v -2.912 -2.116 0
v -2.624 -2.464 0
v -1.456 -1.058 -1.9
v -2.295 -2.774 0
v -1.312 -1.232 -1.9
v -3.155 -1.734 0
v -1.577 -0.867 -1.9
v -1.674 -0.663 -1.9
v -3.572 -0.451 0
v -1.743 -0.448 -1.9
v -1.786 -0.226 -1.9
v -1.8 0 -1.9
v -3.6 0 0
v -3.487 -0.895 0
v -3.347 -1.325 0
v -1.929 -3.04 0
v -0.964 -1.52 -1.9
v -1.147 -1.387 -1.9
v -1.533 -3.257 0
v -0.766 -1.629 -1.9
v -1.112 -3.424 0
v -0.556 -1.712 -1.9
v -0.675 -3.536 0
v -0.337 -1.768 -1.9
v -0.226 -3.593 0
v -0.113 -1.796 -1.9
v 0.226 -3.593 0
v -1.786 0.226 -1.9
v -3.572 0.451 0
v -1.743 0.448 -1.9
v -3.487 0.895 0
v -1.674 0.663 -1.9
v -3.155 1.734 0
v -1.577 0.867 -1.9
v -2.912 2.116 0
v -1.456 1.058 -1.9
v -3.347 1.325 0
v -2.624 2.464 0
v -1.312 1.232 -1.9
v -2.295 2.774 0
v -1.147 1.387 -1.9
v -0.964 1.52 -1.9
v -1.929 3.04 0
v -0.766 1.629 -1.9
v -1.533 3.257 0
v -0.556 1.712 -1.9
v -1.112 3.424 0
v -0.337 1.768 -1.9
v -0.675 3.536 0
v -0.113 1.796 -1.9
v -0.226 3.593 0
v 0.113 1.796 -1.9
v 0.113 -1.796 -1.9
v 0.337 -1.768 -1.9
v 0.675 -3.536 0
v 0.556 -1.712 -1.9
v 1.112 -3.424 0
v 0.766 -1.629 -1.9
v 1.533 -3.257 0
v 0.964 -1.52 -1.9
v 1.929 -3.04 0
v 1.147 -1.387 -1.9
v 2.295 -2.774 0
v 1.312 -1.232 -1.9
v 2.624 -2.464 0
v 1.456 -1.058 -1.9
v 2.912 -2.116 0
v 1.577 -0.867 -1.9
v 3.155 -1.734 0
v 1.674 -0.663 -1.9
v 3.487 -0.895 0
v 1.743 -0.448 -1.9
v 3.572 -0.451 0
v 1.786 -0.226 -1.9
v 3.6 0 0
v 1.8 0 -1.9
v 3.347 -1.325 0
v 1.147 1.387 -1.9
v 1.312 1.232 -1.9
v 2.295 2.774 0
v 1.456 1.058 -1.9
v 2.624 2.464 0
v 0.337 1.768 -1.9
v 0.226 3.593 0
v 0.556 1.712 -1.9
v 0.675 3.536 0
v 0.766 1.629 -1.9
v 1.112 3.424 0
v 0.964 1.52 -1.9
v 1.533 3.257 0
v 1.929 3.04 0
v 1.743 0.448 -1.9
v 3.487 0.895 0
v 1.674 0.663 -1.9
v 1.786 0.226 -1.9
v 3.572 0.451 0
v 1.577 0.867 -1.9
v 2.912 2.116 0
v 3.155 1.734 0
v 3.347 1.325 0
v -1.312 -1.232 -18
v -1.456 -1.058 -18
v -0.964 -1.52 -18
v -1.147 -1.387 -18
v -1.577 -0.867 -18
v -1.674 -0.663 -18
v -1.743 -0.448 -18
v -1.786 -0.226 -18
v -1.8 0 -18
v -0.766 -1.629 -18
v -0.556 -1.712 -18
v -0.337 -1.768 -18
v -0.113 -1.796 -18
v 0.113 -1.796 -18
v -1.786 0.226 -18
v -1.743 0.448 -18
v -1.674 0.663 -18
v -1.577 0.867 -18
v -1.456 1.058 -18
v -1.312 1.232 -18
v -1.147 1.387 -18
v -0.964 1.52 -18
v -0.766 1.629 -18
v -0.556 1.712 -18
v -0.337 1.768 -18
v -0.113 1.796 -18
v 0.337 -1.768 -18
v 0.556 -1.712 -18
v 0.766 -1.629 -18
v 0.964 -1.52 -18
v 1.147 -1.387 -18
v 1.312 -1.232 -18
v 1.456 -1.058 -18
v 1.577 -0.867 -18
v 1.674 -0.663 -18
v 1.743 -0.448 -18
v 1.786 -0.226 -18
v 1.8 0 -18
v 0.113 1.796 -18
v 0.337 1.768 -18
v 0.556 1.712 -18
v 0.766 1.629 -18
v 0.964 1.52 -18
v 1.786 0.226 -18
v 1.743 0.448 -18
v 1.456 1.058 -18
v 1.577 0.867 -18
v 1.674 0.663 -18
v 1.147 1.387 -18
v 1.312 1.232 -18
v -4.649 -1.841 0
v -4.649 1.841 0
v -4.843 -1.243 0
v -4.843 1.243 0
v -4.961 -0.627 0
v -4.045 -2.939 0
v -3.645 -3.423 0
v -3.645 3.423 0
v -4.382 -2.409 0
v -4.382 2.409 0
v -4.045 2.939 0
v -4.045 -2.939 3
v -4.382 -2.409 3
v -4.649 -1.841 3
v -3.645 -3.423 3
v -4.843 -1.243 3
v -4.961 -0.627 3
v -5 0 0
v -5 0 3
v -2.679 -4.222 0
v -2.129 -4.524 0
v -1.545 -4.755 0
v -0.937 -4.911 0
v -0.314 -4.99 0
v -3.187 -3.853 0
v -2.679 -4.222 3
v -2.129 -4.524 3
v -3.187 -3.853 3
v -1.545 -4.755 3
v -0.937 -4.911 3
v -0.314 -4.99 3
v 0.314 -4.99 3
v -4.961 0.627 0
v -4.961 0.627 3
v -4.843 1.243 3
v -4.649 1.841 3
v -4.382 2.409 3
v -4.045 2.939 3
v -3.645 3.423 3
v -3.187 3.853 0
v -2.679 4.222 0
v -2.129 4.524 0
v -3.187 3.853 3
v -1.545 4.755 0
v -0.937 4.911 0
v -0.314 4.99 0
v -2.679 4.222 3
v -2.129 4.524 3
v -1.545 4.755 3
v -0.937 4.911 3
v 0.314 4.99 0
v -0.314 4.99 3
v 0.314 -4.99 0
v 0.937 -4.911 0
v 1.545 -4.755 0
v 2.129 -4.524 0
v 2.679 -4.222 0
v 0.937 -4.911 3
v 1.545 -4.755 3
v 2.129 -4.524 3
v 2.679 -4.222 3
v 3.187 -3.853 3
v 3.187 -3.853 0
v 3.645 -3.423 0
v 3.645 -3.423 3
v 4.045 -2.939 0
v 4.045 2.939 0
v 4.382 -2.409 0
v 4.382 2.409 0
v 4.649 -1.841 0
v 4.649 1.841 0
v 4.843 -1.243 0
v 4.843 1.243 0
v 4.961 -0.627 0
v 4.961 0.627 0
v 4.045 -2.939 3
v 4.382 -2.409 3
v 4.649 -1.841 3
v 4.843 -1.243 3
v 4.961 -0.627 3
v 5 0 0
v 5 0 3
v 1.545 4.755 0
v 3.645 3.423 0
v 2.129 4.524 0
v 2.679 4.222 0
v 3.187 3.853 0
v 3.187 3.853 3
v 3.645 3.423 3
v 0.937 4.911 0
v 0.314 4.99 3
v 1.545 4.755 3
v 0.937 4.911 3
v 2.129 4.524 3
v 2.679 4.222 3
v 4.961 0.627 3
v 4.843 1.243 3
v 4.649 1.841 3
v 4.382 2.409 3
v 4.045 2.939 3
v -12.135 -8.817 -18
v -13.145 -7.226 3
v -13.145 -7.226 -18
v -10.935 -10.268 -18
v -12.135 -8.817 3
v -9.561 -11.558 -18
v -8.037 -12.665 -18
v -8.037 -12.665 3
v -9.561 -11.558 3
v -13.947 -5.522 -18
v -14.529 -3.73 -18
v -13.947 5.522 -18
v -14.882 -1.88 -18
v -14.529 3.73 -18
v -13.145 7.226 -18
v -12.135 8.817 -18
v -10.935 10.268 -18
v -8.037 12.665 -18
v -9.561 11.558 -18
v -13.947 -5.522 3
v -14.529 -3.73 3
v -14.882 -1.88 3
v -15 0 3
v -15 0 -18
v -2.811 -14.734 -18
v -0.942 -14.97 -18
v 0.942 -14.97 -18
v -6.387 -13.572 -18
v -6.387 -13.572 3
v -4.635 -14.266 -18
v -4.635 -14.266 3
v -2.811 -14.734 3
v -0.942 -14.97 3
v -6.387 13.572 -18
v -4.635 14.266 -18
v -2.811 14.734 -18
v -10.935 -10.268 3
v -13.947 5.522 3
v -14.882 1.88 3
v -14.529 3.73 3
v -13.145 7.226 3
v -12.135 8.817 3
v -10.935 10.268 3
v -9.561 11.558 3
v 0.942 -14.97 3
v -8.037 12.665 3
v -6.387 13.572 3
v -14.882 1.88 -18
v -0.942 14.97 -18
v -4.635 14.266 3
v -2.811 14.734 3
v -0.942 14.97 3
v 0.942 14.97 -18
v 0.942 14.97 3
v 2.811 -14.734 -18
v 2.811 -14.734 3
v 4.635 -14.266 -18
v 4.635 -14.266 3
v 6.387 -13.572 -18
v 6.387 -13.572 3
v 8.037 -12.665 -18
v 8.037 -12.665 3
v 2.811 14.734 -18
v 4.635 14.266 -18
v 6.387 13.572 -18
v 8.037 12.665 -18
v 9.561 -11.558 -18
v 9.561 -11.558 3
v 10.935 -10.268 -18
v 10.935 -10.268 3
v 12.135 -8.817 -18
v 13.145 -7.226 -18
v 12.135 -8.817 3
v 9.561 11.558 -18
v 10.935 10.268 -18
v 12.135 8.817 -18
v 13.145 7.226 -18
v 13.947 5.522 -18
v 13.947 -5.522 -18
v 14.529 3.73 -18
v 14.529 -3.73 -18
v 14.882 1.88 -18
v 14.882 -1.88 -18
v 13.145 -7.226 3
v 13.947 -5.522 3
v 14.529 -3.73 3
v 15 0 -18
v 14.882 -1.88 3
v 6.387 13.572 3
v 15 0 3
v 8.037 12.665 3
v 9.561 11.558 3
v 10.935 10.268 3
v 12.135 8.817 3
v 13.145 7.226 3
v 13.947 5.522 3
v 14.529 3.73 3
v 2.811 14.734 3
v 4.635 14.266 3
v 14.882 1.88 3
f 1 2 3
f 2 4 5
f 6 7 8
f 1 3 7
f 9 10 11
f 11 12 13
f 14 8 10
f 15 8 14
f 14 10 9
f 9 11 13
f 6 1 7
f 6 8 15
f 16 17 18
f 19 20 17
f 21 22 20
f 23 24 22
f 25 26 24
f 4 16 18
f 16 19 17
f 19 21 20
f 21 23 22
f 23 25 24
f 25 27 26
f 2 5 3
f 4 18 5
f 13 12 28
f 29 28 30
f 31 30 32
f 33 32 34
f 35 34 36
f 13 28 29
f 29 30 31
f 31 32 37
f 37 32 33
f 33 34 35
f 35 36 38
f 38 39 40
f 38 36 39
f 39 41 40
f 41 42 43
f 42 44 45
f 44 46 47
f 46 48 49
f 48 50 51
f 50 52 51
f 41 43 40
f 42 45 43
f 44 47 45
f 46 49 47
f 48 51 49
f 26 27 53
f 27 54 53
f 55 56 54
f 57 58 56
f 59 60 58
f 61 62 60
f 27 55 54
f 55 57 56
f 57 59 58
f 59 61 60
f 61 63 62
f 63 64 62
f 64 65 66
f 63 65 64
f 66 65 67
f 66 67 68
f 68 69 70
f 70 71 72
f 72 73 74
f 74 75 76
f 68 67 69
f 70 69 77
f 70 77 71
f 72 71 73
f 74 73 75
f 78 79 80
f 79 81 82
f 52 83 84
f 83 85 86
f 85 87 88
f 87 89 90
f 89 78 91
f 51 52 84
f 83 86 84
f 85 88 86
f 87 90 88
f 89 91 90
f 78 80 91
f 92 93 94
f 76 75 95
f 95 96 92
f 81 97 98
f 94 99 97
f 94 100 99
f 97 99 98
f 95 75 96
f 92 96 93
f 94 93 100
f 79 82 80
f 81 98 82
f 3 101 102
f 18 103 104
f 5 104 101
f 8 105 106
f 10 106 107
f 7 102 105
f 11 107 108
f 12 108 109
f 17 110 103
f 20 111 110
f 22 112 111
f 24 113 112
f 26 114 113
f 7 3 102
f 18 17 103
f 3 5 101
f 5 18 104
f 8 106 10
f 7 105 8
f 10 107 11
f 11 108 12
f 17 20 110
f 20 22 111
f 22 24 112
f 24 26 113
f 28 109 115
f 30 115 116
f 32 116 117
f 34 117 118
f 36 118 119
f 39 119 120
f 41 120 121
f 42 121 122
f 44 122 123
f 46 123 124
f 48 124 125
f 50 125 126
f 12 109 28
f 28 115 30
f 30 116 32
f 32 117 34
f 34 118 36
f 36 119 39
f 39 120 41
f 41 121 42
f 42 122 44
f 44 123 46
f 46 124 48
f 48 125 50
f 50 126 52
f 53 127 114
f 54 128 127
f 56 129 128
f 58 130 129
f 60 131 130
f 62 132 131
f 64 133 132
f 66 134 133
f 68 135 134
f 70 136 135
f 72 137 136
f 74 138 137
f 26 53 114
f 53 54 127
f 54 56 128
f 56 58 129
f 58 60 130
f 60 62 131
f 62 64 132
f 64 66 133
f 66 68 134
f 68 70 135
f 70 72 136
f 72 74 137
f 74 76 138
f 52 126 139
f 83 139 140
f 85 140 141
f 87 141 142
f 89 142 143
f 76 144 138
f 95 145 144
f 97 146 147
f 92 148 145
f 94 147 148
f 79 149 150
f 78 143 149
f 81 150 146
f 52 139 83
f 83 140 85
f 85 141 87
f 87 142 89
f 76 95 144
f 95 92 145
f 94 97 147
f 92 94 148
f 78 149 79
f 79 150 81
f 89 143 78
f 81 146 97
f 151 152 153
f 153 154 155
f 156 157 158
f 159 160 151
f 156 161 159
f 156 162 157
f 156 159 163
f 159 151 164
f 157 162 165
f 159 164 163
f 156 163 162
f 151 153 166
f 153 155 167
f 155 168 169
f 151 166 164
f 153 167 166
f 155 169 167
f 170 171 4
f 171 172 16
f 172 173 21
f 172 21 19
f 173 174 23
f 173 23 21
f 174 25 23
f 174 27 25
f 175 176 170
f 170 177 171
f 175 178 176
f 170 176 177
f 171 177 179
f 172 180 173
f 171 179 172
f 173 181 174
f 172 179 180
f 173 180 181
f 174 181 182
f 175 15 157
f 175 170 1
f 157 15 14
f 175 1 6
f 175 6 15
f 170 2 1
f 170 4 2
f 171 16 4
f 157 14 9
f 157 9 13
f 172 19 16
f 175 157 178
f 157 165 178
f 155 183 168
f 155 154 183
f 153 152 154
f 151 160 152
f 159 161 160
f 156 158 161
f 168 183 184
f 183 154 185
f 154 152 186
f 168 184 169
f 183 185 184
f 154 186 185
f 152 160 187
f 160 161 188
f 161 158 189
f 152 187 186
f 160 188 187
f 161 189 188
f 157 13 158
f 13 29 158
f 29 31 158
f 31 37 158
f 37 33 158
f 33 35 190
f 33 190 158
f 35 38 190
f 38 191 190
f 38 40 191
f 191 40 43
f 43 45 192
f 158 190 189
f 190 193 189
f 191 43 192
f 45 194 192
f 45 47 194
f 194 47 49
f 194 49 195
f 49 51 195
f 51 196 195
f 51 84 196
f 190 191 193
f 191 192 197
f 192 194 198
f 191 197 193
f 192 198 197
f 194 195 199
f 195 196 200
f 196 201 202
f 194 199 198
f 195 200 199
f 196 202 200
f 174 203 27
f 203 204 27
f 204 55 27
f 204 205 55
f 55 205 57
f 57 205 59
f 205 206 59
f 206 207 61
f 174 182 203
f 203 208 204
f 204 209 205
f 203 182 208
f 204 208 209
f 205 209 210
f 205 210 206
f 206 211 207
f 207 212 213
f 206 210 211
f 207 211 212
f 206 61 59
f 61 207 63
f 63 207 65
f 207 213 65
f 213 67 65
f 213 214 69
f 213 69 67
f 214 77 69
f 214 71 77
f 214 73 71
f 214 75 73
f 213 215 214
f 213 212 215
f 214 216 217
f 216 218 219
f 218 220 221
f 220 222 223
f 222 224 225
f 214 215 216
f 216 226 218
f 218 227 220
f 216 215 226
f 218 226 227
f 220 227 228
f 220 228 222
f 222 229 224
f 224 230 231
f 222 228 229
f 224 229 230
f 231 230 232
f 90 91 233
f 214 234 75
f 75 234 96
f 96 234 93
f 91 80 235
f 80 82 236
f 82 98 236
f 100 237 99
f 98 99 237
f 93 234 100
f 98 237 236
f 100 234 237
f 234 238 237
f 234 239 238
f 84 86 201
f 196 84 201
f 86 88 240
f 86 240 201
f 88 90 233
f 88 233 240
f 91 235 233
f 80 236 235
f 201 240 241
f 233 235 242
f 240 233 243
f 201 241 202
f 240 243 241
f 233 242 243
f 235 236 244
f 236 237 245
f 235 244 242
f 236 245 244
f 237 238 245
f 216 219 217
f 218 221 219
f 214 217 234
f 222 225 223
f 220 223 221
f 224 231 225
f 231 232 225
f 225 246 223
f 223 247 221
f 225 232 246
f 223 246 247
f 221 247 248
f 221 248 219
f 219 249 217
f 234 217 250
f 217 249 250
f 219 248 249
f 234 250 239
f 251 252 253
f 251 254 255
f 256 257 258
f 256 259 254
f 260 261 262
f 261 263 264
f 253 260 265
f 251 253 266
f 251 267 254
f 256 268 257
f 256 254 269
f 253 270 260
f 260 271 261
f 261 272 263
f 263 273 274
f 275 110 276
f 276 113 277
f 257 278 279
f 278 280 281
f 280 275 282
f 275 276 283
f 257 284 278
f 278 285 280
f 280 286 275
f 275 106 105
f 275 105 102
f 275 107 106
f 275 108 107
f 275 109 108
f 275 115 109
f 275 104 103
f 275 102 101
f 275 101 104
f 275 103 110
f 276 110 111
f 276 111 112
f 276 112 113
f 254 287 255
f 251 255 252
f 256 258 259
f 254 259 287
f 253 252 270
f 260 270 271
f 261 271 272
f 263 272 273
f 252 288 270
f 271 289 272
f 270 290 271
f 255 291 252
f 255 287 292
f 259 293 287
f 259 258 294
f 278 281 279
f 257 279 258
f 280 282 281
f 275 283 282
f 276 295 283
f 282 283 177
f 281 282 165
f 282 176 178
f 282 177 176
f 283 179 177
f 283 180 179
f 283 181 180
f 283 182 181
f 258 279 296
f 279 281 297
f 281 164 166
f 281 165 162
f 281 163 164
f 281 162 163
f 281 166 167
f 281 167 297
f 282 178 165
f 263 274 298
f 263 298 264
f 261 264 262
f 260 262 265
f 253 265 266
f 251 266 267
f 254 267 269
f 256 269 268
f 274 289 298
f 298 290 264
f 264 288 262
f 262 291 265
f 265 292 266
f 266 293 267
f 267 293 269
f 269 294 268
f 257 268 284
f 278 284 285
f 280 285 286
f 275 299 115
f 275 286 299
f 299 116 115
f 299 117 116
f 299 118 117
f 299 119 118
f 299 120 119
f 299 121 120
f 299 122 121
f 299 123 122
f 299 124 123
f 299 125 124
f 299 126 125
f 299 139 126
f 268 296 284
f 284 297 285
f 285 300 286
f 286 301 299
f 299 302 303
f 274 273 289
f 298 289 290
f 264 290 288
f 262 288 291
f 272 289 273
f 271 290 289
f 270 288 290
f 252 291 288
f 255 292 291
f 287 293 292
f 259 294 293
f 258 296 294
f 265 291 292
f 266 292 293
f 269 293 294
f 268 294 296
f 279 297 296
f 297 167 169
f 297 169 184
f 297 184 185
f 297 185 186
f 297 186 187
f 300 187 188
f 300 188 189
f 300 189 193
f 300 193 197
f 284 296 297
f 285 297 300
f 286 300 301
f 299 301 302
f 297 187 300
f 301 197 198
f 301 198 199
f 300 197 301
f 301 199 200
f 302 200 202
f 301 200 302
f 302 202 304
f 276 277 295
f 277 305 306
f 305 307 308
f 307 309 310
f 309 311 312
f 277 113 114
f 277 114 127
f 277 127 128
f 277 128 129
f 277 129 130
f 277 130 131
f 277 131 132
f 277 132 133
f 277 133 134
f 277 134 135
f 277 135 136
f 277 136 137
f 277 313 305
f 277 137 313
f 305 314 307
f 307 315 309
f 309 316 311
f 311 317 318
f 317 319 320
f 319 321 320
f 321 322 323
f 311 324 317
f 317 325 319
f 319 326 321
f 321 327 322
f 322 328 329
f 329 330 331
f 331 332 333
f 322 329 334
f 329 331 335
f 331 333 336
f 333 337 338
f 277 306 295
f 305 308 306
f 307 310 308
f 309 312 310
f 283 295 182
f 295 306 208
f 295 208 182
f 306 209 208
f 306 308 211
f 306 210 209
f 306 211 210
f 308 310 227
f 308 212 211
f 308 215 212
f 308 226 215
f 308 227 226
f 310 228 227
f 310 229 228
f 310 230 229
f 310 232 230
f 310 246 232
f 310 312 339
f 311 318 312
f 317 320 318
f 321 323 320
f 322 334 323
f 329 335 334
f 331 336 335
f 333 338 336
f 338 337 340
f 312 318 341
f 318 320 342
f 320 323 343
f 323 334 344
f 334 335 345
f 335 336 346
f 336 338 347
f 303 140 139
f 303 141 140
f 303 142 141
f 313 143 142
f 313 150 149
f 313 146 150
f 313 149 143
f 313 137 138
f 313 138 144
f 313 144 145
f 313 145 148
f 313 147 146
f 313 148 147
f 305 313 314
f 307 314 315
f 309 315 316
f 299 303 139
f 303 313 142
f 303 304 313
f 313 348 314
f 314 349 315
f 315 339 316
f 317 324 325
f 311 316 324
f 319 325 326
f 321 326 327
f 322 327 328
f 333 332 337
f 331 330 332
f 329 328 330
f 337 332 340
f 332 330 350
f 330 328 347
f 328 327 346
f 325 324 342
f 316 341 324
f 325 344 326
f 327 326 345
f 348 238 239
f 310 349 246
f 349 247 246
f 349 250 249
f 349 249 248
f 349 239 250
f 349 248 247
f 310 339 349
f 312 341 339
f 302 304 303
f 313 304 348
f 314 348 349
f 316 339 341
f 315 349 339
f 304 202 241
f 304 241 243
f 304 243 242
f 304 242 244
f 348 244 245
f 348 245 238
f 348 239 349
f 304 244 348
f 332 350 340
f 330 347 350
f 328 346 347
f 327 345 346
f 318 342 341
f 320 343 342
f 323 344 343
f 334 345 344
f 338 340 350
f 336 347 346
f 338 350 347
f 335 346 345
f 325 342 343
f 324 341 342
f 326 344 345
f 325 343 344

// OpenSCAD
$fn = 50;

difference() {
	union() {
		translate(v = [0, 0, -18.0]) {
			cylinder(h = 21, r = 15.0);
		}
	}
	union() {
		translate(v = [0, 0, 0]) {
			rotate(a = [0, 0, 0]) {
				difference() {
					union() {
						translate(v = [0, 0, -21.0]) {
							cylinder(h = 21, r = 1.5);
						}
						translate(v = [0, 0, -1.9]) {
							cylinder(h = 1.9, r1 = 1.8, r2 = 3.6);
						}
						translate(v = [0, 0, -21.0]) {
							cylinder(h = 21, r = 1.8);
						}
						translate(v = [0, 0, -21.0]) {
							cylinder(h = 21, r = 1.5);
						}
					}
					union();
				}
			}
		}
		#cylinder(h = 3, r = 5.0);
	}
}
